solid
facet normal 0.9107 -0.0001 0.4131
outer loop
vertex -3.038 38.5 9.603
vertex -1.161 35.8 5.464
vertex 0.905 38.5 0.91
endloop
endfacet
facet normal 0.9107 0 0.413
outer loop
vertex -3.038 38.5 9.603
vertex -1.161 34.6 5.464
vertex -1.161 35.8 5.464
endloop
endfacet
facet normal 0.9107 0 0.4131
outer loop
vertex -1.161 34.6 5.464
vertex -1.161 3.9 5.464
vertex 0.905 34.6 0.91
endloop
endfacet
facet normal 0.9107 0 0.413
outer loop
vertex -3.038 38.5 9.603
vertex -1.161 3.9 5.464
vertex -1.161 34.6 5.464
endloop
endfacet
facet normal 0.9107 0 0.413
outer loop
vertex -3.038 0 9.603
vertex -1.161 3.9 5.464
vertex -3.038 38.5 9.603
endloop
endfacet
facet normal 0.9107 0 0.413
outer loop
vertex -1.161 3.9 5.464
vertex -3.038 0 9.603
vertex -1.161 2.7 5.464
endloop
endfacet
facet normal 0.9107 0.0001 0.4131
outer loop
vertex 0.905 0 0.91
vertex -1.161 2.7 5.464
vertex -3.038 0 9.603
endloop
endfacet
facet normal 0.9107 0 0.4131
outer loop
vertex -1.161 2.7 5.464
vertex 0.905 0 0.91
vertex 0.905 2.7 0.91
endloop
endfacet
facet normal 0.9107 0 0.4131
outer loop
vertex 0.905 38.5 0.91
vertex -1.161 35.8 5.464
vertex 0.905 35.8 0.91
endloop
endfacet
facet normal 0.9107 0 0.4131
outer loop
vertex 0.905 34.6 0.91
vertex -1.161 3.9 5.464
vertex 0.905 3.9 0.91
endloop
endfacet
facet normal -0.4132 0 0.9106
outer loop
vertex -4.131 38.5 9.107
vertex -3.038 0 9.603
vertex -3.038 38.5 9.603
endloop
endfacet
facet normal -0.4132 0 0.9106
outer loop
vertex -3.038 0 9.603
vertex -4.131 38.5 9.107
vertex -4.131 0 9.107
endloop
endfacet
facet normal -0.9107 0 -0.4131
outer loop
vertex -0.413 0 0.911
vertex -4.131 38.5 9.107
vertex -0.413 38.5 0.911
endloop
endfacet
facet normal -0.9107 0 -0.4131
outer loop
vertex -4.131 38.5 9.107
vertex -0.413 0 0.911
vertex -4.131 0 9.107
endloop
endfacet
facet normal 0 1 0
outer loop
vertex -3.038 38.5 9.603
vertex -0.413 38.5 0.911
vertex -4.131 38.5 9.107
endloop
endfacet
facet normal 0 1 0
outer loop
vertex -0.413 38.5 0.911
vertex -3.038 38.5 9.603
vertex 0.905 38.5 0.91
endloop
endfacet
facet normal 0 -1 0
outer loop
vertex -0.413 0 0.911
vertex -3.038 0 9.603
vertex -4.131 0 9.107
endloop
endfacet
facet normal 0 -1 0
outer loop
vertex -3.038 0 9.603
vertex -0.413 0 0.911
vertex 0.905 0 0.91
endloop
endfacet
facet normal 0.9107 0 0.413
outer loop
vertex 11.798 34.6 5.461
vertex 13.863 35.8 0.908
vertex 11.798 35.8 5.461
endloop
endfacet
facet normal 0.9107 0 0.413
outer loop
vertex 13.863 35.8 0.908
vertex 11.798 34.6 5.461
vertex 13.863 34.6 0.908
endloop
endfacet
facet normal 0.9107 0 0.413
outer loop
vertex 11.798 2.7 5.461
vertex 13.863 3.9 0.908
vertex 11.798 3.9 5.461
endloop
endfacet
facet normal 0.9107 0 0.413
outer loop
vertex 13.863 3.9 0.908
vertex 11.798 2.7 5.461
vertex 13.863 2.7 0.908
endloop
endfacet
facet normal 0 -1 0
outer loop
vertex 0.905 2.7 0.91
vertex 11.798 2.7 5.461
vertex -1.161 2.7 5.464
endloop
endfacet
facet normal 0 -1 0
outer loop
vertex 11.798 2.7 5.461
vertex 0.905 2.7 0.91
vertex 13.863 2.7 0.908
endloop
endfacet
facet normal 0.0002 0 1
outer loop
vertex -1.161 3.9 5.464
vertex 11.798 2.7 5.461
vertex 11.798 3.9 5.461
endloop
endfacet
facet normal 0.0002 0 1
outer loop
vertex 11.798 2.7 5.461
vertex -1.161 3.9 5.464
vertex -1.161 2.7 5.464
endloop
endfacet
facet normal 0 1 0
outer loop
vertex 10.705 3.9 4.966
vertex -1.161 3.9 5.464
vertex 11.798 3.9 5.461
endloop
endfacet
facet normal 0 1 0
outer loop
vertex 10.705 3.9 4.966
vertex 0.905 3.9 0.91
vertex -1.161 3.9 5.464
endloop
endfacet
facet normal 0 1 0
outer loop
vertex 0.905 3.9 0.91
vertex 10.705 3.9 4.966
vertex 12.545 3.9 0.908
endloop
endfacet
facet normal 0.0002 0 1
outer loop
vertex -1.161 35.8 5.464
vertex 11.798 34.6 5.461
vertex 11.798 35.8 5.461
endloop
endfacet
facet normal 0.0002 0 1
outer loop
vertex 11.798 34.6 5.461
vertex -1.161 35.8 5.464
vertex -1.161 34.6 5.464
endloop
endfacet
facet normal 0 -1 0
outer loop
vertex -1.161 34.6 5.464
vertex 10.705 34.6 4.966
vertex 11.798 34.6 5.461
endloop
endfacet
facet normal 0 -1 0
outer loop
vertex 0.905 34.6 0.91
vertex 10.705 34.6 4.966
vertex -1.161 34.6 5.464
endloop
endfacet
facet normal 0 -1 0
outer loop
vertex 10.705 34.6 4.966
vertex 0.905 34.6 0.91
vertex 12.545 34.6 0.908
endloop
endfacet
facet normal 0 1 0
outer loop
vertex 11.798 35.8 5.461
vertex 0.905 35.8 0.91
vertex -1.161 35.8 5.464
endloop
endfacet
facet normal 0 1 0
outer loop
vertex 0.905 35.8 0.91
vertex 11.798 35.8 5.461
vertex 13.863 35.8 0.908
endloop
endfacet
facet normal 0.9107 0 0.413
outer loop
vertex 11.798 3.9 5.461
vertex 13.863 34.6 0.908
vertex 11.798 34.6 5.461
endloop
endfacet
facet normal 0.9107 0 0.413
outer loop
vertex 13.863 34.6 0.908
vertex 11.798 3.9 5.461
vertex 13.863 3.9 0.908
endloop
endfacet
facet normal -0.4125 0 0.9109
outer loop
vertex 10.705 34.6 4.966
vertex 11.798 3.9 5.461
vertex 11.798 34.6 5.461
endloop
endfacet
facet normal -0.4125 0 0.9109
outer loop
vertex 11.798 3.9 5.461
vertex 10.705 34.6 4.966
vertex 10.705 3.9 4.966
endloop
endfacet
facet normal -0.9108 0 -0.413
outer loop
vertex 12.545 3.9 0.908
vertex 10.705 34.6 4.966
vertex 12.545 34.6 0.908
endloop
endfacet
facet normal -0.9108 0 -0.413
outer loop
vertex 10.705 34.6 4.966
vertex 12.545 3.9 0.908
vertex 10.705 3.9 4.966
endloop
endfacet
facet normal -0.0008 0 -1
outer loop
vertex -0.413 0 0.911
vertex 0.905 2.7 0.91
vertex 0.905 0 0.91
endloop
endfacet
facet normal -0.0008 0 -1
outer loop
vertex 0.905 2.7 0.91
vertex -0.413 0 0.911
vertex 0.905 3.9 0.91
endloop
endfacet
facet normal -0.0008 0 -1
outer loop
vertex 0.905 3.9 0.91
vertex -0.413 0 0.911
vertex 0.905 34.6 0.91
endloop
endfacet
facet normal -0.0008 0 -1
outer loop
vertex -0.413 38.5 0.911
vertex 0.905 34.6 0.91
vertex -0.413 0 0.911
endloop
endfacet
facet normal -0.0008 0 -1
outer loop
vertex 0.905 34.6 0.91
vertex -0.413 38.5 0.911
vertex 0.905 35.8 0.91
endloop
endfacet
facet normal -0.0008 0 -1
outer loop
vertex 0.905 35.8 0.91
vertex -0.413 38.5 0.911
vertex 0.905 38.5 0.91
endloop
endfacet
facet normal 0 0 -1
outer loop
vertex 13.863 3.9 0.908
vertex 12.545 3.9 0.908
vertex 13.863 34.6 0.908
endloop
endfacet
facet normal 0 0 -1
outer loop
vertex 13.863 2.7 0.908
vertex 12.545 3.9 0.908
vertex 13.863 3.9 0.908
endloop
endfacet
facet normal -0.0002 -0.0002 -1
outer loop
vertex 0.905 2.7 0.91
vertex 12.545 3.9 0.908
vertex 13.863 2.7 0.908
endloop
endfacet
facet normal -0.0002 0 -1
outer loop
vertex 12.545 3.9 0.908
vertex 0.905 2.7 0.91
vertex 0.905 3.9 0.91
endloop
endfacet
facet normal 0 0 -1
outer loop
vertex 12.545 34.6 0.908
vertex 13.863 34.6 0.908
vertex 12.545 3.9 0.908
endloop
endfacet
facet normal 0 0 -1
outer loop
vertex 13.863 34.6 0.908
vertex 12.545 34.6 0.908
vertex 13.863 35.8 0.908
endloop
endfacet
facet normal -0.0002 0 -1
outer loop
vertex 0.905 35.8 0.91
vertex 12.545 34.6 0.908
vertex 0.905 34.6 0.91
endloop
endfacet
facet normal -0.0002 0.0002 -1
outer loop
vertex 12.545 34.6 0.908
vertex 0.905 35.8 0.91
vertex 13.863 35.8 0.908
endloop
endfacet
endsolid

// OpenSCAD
wallThickness = 1.2;
width = 38.5;
border = 2.7;
lowHeight = 6;
depth = 13;
lowerSift = -5.9;

rotate([0, -24.4, 0]){
	difference(){
		union(){
			cube([wallThickness, width, 10]);
			
			translate([0, border, 0]){
				slope();
			}
			translate([0, width-wallThickness-border, 0]){
				slope();
			}
			translate([depth-wallThickness, border, lowerSift]){
				cube([wallThickness, width-2*border, lowHeight]);
			}
		}
		#translate([0, 0, -2])
			hull(){
				cube([1e-5, width, 3]);
				translate([depth, 0, lowerSift])
					cube([1e-5, width, 3]);
			}
	}
}

module slope(){
	hull(){
		cube([1e-5, wallThickness, lowHeight]);
		translate([depth, 0, lowerSift])
			cube([1e-5, wallThickness, lowHeight]);
	}
}
